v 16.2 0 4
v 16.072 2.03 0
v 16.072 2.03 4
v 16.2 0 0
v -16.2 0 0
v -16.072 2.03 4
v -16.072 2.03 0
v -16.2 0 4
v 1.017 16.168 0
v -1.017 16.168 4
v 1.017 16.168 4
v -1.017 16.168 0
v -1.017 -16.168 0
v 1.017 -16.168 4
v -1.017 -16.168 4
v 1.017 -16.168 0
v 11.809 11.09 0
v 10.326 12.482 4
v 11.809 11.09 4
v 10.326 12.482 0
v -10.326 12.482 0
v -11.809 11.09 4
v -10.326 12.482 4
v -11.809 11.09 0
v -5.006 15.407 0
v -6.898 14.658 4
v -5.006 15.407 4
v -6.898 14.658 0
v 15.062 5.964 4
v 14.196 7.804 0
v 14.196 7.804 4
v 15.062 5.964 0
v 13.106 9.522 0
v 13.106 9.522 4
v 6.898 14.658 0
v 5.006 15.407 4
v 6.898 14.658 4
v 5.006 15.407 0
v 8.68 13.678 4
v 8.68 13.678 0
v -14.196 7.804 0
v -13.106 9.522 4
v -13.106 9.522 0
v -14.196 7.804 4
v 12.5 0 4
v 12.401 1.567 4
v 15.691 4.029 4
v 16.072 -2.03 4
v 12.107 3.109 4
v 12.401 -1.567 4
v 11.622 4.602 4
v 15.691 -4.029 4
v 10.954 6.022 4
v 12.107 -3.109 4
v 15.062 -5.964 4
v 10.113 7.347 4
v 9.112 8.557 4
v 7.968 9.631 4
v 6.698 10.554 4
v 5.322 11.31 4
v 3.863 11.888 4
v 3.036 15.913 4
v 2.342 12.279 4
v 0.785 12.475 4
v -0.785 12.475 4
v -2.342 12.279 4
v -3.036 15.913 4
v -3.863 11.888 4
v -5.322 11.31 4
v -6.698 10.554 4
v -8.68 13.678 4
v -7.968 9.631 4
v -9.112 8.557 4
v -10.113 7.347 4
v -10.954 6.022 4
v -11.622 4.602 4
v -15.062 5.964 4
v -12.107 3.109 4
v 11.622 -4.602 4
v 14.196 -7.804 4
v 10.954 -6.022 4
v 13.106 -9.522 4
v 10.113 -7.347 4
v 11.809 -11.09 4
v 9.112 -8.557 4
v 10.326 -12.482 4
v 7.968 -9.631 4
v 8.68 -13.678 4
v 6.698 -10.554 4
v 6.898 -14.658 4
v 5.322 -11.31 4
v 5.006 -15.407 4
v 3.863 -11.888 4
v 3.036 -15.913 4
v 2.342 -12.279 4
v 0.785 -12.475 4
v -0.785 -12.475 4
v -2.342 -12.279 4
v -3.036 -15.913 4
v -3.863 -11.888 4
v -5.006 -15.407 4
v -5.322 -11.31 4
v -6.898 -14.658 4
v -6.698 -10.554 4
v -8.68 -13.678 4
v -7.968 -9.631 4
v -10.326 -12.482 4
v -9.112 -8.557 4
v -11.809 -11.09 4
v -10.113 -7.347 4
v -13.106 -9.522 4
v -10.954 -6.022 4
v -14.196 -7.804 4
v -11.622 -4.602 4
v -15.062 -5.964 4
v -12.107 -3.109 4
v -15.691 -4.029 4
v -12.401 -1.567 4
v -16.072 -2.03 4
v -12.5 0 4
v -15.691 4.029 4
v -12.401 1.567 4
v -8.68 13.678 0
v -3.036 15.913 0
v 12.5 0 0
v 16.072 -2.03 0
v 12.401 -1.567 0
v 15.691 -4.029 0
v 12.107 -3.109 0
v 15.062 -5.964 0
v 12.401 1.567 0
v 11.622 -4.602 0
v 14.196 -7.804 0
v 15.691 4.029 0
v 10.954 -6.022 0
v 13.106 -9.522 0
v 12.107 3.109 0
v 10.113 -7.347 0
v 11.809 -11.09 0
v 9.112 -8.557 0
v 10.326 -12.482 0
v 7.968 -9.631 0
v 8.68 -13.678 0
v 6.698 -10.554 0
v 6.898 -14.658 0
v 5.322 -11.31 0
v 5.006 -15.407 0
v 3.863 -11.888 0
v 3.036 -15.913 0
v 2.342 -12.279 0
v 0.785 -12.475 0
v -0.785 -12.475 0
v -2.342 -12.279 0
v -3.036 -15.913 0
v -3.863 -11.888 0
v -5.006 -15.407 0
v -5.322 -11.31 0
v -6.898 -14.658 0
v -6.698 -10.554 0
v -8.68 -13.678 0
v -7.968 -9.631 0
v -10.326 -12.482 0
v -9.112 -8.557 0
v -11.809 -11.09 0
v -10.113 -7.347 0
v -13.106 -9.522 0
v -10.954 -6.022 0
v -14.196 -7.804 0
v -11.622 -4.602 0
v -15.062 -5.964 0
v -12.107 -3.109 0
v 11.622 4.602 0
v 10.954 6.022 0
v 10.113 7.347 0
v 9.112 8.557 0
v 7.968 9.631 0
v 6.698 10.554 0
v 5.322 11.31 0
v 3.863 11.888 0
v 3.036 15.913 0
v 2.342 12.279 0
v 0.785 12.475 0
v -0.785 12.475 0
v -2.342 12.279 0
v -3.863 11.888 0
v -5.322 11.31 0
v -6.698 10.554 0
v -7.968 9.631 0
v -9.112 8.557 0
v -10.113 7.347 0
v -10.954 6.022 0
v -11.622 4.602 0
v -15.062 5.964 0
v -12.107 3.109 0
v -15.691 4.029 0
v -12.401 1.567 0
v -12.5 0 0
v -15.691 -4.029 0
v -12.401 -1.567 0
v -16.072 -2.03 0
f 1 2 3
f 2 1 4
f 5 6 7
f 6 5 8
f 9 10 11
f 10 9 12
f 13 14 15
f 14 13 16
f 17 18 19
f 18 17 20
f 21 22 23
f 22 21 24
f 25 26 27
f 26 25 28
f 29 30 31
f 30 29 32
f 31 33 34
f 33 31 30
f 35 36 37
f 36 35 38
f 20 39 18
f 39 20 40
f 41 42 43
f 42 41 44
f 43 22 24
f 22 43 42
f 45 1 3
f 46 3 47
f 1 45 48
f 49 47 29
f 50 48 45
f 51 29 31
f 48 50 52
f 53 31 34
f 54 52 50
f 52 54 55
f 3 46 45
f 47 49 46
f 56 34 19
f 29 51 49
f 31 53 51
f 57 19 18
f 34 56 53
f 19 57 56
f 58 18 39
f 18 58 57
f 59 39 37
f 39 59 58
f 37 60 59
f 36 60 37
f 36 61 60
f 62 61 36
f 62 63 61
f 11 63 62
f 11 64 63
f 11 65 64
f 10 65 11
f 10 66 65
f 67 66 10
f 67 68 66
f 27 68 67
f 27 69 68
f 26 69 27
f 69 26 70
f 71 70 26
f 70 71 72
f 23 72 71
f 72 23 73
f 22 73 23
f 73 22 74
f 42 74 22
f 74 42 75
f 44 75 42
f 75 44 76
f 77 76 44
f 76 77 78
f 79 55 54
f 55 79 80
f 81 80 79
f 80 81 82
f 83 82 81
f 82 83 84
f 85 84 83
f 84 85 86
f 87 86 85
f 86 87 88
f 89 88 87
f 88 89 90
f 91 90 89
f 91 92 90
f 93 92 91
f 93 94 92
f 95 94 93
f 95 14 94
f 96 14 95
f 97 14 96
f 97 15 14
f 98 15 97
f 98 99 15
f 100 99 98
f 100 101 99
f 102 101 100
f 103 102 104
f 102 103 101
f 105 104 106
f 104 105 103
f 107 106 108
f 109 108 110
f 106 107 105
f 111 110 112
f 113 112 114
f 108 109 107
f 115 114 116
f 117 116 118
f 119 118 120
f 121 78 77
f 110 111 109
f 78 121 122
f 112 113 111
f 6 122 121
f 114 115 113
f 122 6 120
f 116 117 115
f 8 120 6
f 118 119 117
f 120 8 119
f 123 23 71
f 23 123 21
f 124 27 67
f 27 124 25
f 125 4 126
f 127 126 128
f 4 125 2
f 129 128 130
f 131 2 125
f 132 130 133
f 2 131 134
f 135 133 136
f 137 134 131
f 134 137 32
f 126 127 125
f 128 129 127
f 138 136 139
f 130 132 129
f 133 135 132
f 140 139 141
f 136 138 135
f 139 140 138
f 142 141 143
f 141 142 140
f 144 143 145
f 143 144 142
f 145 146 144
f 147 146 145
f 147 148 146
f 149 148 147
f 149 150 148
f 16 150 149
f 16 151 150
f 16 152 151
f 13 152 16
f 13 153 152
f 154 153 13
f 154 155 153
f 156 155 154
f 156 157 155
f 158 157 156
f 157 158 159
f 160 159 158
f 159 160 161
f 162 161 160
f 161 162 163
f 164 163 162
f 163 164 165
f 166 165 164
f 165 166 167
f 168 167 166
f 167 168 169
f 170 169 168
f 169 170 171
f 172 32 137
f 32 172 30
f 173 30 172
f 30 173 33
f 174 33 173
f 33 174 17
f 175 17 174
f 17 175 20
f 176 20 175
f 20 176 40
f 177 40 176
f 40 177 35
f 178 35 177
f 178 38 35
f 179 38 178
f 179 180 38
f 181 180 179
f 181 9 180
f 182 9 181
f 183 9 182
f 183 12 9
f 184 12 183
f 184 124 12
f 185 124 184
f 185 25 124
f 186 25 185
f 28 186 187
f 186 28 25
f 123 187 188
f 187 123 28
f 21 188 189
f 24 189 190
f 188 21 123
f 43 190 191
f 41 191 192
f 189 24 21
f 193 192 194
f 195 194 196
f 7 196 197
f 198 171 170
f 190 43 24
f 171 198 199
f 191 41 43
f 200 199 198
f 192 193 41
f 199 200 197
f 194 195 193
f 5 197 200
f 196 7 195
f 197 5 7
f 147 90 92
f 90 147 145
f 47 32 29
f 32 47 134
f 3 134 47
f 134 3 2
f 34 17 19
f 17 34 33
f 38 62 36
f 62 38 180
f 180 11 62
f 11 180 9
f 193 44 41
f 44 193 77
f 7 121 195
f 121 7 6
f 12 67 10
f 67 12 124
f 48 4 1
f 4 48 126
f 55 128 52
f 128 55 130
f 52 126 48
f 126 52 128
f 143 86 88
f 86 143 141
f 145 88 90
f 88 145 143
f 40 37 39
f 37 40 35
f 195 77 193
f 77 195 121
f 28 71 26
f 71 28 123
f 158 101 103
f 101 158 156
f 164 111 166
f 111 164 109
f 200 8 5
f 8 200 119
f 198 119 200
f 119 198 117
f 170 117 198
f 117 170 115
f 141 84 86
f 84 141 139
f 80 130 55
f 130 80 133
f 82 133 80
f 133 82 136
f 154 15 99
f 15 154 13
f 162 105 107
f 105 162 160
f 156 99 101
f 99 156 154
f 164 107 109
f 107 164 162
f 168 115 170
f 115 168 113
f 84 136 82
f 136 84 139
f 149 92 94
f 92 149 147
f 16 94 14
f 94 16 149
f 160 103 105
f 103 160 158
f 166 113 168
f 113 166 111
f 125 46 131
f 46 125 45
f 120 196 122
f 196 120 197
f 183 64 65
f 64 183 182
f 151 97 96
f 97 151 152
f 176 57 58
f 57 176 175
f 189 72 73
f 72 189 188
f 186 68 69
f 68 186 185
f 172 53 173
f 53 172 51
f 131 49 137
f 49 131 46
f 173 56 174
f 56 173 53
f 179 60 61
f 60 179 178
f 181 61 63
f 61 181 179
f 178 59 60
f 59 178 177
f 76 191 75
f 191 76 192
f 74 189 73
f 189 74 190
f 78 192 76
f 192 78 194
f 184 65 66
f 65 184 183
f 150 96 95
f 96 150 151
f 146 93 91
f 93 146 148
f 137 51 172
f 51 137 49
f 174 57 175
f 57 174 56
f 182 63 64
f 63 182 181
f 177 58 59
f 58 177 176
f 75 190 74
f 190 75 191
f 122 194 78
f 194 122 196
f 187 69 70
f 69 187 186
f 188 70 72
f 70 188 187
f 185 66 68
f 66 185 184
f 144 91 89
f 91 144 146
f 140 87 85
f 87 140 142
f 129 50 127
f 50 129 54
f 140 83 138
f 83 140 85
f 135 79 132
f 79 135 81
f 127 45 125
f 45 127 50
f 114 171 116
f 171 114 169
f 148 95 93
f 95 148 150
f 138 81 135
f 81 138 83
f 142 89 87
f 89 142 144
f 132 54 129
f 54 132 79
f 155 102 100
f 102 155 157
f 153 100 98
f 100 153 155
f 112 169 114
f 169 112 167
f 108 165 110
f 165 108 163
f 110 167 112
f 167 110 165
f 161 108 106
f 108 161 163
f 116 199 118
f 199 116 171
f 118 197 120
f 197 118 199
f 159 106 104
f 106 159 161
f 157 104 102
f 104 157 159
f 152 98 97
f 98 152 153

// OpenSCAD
$fn = 50;


difference() {
	union() {
		translate(v = [0, 0, 0]) {
			rotate(a = [0, 0, 0]) {
				cylinder(h = 4, r = 16.2000000000);
			}
		}
	}
	union() {
		translate(v = [0, 0, 0]) {
			rotate(a = [0, 0, 0]) {
				cylinder(h = 4, r = 12.5000000000);
			}
		}
	}
}
